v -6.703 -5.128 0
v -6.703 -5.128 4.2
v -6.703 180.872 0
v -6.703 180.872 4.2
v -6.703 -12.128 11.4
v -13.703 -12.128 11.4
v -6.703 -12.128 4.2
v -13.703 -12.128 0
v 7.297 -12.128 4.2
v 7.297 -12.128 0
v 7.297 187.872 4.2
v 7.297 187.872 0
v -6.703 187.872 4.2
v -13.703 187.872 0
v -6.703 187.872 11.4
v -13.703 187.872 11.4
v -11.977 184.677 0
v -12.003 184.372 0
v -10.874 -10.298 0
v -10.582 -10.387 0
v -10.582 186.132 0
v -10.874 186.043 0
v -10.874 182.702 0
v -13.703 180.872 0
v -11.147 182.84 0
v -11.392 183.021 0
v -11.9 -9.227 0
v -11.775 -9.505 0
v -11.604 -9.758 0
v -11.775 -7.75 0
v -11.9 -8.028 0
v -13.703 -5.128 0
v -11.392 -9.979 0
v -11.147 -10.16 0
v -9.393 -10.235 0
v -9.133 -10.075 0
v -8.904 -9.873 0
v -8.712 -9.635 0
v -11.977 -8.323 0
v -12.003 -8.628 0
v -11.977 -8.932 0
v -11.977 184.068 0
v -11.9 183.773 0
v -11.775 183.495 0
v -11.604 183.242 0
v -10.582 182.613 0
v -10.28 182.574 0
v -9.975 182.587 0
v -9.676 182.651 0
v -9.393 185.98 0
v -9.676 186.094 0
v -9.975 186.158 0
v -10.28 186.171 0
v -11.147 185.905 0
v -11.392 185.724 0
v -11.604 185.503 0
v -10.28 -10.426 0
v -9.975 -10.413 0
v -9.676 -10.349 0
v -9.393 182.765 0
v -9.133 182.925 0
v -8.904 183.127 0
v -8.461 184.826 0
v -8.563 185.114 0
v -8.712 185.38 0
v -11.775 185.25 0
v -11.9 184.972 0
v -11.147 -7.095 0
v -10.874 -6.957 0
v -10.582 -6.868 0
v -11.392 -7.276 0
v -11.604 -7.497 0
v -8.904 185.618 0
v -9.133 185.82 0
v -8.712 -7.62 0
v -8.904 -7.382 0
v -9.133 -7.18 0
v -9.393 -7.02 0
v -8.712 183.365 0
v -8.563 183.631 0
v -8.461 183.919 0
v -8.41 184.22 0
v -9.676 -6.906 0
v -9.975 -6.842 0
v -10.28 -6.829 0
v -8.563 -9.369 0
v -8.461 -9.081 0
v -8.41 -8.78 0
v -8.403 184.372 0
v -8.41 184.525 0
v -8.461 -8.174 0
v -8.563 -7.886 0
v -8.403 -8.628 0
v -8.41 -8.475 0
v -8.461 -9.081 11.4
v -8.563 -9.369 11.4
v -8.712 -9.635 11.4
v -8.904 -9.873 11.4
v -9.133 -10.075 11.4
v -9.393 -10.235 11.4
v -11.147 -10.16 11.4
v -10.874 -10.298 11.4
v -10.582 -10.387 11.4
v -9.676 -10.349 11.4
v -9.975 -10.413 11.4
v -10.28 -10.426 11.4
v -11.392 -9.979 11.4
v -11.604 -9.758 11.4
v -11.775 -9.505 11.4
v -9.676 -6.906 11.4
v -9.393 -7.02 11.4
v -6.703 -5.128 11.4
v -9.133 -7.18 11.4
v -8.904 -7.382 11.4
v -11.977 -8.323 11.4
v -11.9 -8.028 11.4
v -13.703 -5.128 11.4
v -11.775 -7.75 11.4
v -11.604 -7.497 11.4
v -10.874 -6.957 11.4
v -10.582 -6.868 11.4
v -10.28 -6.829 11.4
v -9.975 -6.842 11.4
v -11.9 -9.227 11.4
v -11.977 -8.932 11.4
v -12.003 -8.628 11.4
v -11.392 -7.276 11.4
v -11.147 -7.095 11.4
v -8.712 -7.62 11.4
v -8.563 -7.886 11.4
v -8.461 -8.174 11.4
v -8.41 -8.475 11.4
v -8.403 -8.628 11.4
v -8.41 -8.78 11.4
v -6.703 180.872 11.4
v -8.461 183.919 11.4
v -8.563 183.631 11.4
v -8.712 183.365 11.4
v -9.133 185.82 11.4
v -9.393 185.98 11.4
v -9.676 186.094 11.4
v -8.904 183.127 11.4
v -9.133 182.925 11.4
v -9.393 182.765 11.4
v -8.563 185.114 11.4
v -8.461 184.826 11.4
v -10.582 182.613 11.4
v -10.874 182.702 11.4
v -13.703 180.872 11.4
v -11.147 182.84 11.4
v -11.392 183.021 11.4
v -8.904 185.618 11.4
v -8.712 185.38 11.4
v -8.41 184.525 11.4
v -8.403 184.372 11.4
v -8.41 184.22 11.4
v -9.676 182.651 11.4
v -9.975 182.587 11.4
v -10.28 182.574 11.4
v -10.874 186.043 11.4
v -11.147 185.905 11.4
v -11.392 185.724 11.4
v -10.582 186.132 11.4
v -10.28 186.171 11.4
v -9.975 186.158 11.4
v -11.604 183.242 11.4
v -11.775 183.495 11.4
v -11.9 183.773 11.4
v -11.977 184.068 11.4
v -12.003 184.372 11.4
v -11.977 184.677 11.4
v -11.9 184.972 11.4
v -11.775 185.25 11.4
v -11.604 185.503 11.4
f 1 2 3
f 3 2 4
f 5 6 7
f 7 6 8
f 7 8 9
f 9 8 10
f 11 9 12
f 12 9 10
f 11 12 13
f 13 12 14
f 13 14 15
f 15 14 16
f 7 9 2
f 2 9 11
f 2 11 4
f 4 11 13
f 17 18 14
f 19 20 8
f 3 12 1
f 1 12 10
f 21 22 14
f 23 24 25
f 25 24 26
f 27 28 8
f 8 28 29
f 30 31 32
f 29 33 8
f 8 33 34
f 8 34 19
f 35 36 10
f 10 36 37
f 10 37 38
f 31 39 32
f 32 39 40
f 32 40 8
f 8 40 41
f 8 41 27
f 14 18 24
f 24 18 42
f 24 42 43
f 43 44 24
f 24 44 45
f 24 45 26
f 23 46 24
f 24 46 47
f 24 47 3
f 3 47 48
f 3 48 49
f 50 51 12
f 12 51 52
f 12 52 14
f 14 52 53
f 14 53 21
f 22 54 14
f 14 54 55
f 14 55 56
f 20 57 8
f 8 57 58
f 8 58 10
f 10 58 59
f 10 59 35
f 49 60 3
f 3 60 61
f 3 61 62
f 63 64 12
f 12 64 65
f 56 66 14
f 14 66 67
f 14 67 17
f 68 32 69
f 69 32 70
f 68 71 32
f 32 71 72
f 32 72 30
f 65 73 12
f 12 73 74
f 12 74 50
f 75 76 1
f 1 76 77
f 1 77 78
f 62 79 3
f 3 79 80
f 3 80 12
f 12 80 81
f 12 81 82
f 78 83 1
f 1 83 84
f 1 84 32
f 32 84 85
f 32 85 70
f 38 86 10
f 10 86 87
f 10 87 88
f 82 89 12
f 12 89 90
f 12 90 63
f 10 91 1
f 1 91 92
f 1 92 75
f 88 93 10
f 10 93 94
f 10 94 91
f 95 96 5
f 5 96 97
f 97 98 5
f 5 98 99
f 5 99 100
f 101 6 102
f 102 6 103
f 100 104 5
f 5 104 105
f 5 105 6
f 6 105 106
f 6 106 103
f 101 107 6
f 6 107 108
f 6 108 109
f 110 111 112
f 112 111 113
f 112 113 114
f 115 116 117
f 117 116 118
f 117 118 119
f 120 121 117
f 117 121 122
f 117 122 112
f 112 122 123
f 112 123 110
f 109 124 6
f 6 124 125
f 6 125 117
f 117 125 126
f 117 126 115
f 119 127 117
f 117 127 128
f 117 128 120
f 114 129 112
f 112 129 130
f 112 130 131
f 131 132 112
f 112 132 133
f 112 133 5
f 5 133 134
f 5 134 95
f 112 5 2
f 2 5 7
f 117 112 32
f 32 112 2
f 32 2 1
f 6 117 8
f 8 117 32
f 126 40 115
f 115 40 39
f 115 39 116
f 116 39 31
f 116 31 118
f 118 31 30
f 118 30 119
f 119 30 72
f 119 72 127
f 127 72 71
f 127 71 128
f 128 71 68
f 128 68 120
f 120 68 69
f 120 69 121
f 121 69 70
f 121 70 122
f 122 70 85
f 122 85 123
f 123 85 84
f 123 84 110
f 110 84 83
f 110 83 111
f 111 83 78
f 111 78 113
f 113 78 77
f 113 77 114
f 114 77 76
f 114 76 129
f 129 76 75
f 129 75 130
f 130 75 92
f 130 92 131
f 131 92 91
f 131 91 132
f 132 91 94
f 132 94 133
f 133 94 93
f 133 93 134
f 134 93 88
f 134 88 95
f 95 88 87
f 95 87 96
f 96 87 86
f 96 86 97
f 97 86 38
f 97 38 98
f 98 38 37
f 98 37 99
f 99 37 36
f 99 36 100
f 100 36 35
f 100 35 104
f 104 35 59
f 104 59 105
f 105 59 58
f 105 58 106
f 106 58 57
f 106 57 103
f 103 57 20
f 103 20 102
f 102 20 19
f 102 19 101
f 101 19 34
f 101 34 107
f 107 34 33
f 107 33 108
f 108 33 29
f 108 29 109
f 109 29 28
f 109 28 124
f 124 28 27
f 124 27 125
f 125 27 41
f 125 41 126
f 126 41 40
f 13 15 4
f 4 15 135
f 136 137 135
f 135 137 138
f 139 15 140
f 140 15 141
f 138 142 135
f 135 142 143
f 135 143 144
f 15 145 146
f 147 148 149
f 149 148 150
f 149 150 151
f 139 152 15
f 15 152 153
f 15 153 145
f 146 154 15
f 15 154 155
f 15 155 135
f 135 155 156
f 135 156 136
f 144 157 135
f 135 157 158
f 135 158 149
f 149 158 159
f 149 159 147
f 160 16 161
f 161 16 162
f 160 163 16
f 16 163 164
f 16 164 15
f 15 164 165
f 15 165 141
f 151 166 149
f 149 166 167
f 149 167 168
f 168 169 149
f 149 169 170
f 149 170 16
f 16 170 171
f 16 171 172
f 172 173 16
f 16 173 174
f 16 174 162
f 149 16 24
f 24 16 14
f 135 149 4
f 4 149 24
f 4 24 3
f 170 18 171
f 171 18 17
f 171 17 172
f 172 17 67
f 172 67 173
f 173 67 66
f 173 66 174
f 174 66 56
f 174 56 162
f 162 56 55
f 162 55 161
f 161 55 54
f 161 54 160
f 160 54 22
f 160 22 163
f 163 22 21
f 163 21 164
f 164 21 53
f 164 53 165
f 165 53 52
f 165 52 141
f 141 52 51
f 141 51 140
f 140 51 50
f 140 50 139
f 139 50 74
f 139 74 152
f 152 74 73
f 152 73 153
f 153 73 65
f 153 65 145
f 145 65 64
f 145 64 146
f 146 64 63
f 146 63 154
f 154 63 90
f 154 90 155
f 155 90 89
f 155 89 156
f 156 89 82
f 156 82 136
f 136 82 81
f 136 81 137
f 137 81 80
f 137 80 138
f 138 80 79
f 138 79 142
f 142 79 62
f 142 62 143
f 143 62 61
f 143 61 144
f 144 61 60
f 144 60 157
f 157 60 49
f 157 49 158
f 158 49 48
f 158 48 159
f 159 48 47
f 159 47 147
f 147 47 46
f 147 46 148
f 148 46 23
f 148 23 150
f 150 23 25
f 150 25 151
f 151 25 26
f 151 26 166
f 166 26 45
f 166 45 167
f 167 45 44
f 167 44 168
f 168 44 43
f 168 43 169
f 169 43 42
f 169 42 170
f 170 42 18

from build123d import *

# Parameters (mm, degrees)
SKETCH_1_W      = 14
SKETCH_1_H      = 200
EXTRUDE_1_DEPTH = 4.2
SKETCH_4_W      = 7
SKETCH_4_H      = 7
SKETCH_4_R      = 1.8
EXTRUDE_2_DEPTH = 11.4


with BuildPart() as part:
    # Эскиз1 → Бобышка-Вытянуть1 (new body)
    with BuildSketch(Plane.XY):
        with Locations((0.29682076, 87.872480945)):
            Rectangle(SKETCH_1_W, SKETCH_1_H)
    extrude(amount=EXTRUDE_1_DEPTH)

    # Эскиз4 → Бобышка-Вытянуть2 (add)
    # profile 1 of 2: a face of its own
    with BuildSketch(Plane.XY):
        with Locations((-10.20317924, -8.627519055)):
            Rectangle(SKETCH_4_W, SKETCH_4_H)
        with Locations((-10.20317924, -8.627519055)):
            Circle(SKETCH_4_R, mode=Mode.SUBTRACT)
    # profile 2 of 2: a face of its own
    with BuildSketch(Plane.XY):
        with Locations((-10.20317924, 184.372480945)):
            Rectangle(SKETCH_4_W, SKETCH_4_H)
        with Locations((-10.20317924, 184.372480945)):
            Circle(SKETCH_4_R, mode=Mode.SUBTRACT)
    extrude(amount=EXTRUDE_2_DEPTH)


solid = part.part
